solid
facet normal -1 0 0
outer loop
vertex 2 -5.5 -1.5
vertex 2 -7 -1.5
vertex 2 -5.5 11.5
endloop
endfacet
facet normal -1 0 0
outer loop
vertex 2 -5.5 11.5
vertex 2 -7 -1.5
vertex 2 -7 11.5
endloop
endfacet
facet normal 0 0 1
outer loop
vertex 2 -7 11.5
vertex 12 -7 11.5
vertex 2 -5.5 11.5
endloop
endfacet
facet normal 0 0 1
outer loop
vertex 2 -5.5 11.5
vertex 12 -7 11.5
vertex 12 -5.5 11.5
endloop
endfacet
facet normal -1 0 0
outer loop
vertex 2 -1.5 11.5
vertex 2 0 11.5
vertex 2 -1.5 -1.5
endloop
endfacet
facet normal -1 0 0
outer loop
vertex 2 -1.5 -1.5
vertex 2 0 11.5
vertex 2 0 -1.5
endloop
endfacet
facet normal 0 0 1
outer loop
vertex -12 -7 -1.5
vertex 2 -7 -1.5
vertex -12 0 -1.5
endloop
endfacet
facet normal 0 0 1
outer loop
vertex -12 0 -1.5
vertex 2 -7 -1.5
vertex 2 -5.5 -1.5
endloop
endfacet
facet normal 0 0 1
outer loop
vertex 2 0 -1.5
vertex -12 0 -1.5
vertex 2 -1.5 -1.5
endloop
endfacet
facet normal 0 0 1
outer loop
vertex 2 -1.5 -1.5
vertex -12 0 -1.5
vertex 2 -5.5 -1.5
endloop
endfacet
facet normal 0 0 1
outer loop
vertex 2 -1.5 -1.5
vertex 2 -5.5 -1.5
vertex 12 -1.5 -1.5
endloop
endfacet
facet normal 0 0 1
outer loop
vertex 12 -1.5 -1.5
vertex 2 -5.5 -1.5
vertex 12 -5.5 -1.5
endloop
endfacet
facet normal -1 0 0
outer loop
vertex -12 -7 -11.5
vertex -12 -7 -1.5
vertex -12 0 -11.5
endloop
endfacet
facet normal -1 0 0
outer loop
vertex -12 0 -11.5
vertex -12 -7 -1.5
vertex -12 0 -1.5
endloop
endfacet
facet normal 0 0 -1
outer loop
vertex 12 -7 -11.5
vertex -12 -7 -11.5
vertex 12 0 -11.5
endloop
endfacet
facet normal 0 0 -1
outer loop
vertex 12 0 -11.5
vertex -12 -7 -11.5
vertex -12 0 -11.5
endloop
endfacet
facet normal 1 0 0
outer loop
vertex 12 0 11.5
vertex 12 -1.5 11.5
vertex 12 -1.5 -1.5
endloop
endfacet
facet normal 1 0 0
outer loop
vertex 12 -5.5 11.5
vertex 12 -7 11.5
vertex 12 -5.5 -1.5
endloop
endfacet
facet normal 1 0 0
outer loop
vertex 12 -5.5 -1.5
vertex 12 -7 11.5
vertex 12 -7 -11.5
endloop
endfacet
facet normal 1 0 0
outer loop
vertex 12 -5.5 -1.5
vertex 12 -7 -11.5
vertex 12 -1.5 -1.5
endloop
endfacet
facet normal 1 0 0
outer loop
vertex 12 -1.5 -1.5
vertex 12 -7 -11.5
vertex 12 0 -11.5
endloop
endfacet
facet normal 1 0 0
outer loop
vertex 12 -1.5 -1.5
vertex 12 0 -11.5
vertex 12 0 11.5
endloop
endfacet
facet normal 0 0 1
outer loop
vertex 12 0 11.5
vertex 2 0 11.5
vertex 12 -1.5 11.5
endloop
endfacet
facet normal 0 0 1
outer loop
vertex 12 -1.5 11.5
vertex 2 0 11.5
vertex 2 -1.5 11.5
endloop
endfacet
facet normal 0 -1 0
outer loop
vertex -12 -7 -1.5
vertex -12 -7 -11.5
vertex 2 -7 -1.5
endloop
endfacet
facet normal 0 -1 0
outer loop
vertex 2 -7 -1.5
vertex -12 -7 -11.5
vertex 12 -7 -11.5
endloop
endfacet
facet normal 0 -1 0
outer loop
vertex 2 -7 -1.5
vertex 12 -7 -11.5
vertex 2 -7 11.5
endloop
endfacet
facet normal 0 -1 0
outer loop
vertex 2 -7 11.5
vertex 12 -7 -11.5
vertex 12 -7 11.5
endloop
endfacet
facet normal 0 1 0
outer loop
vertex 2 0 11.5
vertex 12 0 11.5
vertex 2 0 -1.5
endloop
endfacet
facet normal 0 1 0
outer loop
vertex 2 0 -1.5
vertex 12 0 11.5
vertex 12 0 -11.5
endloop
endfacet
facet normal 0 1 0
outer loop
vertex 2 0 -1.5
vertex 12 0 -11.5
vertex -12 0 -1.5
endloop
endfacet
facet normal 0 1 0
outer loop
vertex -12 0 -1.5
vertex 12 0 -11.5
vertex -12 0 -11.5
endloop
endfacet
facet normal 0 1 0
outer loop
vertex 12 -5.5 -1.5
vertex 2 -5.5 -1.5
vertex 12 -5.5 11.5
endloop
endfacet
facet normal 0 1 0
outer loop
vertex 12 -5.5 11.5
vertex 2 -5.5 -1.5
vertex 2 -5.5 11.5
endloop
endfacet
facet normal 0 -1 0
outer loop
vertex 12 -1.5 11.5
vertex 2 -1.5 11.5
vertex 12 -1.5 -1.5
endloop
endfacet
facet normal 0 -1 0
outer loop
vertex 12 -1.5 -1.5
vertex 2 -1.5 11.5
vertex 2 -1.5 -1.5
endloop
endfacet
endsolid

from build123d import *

# Parameters (mm, degrees)
BOSS_EXTRUDE2_DEPTH = 7
SKETCH4_W           = 24
SKETCH4_H           = 4
CUT_EXTRUDE1_DEPTH  = 13


with BuildPart() as part:
    # Sketch3 → Boss-Extrude2 (new body)
    with BuildSketch(Plane(origin=(0, 0, 0), x_dir=(1, 0, 0), z_dir=(0, 1, 0))):
        Polygon((12, 11.5), (-12, 11.5), (-12, 1.5), (2, 1.5), (2, -11.5), (12, -11.5), align=None)
    extrude(amount=-BOSS_EXTRUDE2_DEPTH)

    # Sketch4 → Cut-Extrude1 (cut)
    with BuildSketch(Plane.XY.offset(11.5)):
        with Locations((0, -3.5)):
            Rectangle(SKETCH4_W, SKETCH4_H)
    extrude(amount=-CUT_EXTRUDE1_DEPTH, mode=Mode.SUBTRACT)


solid = part.part
